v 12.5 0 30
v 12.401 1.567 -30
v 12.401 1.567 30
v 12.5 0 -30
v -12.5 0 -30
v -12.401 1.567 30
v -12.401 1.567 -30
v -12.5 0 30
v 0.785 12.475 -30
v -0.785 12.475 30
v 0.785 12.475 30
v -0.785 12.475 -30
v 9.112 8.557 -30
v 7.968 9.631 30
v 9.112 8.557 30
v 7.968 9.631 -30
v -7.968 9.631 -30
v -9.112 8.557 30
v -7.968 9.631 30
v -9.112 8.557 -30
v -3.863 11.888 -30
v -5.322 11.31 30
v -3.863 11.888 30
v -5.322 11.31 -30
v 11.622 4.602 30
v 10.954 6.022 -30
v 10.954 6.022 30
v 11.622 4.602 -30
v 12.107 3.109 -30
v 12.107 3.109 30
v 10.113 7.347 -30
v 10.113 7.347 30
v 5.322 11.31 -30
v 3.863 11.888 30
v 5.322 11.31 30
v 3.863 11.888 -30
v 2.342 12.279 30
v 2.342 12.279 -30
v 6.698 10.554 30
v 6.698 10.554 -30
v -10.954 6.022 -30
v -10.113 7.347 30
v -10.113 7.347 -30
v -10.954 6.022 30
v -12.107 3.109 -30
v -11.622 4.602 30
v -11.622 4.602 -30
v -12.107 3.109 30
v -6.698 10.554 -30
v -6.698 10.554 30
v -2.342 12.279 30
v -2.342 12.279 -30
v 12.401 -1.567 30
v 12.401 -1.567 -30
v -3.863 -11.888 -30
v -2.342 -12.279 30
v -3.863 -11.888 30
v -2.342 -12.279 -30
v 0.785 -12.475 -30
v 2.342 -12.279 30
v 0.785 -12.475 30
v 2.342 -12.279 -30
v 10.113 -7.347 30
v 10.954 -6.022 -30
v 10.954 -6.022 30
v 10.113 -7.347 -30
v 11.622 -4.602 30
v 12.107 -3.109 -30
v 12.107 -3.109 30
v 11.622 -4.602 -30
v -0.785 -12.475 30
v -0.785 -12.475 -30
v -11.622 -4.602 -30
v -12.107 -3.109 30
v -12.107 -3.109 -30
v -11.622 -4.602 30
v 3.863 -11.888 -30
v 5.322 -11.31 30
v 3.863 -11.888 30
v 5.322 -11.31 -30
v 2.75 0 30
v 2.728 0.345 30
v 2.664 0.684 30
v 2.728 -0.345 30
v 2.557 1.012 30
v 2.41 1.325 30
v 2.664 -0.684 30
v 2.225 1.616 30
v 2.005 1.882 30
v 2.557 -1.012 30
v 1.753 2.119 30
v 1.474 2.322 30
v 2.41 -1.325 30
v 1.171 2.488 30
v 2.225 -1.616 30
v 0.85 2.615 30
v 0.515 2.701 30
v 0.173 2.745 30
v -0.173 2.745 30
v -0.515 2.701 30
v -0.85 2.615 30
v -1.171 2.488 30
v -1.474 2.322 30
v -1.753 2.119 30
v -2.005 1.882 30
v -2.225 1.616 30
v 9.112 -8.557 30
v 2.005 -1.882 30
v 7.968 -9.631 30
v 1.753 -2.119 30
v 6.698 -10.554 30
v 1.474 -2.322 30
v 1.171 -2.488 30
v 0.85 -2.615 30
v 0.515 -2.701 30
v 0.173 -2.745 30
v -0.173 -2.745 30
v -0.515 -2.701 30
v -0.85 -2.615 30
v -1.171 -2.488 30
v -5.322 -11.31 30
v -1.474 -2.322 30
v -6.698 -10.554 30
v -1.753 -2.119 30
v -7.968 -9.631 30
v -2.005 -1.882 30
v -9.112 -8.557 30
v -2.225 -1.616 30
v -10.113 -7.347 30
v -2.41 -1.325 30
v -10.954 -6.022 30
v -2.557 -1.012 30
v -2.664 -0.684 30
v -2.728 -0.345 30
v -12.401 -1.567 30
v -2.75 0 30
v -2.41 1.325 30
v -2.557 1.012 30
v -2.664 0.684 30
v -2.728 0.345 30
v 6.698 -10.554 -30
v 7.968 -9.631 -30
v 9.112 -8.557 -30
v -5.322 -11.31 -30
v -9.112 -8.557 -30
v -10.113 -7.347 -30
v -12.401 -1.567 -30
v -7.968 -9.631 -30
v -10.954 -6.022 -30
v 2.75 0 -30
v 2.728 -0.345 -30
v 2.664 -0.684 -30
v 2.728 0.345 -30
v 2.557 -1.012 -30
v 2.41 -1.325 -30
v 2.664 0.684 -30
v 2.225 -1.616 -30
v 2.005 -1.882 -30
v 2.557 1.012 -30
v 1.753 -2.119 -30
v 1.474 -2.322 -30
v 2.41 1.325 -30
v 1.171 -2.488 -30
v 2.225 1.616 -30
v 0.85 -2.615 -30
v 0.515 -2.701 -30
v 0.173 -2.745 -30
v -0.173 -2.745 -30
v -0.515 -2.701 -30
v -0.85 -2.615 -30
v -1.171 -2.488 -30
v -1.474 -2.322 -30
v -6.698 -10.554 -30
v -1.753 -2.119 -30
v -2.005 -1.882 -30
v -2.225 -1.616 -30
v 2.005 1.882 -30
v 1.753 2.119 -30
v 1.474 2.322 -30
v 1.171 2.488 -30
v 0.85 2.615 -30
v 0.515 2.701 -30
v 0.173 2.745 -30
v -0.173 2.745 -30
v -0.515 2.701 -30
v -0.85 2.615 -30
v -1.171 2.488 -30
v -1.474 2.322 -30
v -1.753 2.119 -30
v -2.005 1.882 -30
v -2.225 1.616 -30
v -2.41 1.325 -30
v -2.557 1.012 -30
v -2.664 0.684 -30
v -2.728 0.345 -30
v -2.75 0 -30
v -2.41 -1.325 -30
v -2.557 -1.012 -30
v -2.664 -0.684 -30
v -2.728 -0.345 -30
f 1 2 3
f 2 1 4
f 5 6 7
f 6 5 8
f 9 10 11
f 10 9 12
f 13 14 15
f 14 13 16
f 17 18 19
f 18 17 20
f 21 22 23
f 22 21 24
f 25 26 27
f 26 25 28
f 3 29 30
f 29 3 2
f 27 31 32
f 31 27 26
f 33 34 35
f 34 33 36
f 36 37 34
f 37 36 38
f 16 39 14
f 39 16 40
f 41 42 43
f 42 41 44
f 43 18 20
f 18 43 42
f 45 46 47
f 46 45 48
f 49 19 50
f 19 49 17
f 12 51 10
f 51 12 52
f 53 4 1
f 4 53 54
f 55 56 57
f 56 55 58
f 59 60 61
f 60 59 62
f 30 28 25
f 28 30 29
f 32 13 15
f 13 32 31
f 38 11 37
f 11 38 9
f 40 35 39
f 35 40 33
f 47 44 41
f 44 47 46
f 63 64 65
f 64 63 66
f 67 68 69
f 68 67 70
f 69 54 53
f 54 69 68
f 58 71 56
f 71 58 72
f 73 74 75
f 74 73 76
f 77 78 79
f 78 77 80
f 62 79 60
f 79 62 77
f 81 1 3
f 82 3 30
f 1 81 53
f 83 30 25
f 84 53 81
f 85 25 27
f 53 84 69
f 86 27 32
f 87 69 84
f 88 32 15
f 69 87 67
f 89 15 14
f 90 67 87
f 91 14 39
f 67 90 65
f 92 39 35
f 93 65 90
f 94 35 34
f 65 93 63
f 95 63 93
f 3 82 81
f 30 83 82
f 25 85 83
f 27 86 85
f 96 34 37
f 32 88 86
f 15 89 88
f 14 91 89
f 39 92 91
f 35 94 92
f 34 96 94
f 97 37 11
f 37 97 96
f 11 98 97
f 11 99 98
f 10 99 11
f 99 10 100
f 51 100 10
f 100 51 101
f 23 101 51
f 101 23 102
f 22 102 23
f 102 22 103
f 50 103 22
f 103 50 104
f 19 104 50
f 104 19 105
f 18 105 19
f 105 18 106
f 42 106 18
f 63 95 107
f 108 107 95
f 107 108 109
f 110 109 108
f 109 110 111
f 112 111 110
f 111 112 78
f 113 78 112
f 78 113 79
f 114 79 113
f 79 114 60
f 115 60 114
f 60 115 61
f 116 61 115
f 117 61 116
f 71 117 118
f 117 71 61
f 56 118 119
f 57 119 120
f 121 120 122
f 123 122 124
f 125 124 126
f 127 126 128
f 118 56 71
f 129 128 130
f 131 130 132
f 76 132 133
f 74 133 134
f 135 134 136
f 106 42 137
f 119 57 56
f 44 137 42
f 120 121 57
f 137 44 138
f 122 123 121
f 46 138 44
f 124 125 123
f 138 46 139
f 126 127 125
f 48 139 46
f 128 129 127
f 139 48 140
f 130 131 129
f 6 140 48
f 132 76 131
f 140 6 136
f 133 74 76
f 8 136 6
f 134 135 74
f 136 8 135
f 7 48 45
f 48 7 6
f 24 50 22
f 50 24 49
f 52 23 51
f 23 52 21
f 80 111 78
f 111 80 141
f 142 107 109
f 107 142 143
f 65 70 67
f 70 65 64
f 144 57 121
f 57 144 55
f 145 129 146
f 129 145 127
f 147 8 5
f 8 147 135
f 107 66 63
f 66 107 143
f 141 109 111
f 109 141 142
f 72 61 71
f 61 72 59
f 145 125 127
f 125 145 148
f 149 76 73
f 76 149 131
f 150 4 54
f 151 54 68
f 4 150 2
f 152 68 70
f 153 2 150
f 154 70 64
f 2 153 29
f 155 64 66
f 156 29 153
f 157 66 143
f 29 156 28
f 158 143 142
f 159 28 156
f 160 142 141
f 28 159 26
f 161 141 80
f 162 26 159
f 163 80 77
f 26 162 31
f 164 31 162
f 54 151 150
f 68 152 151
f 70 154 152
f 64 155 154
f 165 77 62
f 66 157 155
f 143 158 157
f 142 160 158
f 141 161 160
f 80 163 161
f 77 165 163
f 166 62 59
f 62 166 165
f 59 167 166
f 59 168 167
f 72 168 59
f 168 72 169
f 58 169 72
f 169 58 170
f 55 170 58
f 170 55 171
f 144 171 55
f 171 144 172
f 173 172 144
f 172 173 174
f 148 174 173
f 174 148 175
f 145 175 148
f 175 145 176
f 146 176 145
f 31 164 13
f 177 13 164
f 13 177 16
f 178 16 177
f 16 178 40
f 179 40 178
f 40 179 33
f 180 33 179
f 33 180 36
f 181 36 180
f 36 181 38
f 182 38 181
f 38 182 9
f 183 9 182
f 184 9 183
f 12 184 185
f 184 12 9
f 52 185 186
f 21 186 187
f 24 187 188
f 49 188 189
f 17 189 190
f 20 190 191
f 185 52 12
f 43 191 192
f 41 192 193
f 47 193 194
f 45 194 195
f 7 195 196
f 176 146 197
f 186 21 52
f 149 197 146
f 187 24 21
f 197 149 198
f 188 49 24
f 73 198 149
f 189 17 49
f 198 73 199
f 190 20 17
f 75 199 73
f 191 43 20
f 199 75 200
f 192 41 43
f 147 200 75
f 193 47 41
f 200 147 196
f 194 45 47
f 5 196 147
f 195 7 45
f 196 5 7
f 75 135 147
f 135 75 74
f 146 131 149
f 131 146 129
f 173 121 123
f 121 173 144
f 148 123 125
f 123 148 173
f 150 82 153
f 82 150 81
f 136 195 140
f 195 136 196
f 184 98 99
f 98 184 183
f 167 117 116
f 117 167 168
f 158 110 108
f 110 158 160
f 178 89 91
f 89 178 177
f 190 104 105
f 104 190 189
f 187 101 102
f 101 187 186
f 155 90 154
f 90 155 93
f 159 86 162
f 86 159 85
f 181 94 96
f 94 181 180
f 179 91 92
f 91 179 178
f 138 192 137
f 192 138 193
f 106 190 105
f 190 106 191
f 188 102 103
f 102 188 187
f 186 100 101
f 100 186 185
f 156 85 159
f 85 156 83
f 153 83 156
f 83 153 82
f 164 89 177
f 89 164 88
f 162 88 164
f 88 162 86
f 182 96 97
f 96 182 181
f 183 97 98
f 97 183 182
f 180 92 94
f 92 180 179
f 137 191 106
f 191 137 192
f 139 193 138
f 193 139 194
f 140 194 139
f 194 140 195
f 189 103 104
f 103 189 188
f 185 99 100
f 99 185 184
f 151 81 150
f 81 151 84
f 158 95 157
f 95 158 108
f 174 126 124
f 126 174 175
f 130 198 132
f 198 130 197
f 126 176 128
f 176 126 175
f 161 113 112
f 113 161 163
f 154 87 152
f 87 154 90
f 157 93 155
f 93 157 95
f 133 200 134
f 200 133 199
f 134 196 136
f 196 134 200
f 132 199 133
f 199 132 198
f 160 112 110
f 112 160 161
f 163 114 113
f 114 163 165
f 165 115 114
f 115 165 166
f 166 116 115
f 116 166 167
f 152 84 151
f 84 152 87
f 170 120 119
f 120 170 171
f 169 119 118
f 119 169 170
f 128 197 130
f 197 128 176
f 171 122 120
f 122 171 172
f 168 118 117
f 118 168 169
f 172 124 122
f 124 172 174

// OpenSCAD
$fn = 50;


difference() {
	union() {
		translate(v = [0, 0, -30.0000000000]) {
			cylinder(h = 60, r = 12.5000000000);
		}
	}
	union() {
		translate(v = [0, 0, -100.0000000000]) {
			cylinder(h = 200, r = 2.7500000000);
		}
	}
}
